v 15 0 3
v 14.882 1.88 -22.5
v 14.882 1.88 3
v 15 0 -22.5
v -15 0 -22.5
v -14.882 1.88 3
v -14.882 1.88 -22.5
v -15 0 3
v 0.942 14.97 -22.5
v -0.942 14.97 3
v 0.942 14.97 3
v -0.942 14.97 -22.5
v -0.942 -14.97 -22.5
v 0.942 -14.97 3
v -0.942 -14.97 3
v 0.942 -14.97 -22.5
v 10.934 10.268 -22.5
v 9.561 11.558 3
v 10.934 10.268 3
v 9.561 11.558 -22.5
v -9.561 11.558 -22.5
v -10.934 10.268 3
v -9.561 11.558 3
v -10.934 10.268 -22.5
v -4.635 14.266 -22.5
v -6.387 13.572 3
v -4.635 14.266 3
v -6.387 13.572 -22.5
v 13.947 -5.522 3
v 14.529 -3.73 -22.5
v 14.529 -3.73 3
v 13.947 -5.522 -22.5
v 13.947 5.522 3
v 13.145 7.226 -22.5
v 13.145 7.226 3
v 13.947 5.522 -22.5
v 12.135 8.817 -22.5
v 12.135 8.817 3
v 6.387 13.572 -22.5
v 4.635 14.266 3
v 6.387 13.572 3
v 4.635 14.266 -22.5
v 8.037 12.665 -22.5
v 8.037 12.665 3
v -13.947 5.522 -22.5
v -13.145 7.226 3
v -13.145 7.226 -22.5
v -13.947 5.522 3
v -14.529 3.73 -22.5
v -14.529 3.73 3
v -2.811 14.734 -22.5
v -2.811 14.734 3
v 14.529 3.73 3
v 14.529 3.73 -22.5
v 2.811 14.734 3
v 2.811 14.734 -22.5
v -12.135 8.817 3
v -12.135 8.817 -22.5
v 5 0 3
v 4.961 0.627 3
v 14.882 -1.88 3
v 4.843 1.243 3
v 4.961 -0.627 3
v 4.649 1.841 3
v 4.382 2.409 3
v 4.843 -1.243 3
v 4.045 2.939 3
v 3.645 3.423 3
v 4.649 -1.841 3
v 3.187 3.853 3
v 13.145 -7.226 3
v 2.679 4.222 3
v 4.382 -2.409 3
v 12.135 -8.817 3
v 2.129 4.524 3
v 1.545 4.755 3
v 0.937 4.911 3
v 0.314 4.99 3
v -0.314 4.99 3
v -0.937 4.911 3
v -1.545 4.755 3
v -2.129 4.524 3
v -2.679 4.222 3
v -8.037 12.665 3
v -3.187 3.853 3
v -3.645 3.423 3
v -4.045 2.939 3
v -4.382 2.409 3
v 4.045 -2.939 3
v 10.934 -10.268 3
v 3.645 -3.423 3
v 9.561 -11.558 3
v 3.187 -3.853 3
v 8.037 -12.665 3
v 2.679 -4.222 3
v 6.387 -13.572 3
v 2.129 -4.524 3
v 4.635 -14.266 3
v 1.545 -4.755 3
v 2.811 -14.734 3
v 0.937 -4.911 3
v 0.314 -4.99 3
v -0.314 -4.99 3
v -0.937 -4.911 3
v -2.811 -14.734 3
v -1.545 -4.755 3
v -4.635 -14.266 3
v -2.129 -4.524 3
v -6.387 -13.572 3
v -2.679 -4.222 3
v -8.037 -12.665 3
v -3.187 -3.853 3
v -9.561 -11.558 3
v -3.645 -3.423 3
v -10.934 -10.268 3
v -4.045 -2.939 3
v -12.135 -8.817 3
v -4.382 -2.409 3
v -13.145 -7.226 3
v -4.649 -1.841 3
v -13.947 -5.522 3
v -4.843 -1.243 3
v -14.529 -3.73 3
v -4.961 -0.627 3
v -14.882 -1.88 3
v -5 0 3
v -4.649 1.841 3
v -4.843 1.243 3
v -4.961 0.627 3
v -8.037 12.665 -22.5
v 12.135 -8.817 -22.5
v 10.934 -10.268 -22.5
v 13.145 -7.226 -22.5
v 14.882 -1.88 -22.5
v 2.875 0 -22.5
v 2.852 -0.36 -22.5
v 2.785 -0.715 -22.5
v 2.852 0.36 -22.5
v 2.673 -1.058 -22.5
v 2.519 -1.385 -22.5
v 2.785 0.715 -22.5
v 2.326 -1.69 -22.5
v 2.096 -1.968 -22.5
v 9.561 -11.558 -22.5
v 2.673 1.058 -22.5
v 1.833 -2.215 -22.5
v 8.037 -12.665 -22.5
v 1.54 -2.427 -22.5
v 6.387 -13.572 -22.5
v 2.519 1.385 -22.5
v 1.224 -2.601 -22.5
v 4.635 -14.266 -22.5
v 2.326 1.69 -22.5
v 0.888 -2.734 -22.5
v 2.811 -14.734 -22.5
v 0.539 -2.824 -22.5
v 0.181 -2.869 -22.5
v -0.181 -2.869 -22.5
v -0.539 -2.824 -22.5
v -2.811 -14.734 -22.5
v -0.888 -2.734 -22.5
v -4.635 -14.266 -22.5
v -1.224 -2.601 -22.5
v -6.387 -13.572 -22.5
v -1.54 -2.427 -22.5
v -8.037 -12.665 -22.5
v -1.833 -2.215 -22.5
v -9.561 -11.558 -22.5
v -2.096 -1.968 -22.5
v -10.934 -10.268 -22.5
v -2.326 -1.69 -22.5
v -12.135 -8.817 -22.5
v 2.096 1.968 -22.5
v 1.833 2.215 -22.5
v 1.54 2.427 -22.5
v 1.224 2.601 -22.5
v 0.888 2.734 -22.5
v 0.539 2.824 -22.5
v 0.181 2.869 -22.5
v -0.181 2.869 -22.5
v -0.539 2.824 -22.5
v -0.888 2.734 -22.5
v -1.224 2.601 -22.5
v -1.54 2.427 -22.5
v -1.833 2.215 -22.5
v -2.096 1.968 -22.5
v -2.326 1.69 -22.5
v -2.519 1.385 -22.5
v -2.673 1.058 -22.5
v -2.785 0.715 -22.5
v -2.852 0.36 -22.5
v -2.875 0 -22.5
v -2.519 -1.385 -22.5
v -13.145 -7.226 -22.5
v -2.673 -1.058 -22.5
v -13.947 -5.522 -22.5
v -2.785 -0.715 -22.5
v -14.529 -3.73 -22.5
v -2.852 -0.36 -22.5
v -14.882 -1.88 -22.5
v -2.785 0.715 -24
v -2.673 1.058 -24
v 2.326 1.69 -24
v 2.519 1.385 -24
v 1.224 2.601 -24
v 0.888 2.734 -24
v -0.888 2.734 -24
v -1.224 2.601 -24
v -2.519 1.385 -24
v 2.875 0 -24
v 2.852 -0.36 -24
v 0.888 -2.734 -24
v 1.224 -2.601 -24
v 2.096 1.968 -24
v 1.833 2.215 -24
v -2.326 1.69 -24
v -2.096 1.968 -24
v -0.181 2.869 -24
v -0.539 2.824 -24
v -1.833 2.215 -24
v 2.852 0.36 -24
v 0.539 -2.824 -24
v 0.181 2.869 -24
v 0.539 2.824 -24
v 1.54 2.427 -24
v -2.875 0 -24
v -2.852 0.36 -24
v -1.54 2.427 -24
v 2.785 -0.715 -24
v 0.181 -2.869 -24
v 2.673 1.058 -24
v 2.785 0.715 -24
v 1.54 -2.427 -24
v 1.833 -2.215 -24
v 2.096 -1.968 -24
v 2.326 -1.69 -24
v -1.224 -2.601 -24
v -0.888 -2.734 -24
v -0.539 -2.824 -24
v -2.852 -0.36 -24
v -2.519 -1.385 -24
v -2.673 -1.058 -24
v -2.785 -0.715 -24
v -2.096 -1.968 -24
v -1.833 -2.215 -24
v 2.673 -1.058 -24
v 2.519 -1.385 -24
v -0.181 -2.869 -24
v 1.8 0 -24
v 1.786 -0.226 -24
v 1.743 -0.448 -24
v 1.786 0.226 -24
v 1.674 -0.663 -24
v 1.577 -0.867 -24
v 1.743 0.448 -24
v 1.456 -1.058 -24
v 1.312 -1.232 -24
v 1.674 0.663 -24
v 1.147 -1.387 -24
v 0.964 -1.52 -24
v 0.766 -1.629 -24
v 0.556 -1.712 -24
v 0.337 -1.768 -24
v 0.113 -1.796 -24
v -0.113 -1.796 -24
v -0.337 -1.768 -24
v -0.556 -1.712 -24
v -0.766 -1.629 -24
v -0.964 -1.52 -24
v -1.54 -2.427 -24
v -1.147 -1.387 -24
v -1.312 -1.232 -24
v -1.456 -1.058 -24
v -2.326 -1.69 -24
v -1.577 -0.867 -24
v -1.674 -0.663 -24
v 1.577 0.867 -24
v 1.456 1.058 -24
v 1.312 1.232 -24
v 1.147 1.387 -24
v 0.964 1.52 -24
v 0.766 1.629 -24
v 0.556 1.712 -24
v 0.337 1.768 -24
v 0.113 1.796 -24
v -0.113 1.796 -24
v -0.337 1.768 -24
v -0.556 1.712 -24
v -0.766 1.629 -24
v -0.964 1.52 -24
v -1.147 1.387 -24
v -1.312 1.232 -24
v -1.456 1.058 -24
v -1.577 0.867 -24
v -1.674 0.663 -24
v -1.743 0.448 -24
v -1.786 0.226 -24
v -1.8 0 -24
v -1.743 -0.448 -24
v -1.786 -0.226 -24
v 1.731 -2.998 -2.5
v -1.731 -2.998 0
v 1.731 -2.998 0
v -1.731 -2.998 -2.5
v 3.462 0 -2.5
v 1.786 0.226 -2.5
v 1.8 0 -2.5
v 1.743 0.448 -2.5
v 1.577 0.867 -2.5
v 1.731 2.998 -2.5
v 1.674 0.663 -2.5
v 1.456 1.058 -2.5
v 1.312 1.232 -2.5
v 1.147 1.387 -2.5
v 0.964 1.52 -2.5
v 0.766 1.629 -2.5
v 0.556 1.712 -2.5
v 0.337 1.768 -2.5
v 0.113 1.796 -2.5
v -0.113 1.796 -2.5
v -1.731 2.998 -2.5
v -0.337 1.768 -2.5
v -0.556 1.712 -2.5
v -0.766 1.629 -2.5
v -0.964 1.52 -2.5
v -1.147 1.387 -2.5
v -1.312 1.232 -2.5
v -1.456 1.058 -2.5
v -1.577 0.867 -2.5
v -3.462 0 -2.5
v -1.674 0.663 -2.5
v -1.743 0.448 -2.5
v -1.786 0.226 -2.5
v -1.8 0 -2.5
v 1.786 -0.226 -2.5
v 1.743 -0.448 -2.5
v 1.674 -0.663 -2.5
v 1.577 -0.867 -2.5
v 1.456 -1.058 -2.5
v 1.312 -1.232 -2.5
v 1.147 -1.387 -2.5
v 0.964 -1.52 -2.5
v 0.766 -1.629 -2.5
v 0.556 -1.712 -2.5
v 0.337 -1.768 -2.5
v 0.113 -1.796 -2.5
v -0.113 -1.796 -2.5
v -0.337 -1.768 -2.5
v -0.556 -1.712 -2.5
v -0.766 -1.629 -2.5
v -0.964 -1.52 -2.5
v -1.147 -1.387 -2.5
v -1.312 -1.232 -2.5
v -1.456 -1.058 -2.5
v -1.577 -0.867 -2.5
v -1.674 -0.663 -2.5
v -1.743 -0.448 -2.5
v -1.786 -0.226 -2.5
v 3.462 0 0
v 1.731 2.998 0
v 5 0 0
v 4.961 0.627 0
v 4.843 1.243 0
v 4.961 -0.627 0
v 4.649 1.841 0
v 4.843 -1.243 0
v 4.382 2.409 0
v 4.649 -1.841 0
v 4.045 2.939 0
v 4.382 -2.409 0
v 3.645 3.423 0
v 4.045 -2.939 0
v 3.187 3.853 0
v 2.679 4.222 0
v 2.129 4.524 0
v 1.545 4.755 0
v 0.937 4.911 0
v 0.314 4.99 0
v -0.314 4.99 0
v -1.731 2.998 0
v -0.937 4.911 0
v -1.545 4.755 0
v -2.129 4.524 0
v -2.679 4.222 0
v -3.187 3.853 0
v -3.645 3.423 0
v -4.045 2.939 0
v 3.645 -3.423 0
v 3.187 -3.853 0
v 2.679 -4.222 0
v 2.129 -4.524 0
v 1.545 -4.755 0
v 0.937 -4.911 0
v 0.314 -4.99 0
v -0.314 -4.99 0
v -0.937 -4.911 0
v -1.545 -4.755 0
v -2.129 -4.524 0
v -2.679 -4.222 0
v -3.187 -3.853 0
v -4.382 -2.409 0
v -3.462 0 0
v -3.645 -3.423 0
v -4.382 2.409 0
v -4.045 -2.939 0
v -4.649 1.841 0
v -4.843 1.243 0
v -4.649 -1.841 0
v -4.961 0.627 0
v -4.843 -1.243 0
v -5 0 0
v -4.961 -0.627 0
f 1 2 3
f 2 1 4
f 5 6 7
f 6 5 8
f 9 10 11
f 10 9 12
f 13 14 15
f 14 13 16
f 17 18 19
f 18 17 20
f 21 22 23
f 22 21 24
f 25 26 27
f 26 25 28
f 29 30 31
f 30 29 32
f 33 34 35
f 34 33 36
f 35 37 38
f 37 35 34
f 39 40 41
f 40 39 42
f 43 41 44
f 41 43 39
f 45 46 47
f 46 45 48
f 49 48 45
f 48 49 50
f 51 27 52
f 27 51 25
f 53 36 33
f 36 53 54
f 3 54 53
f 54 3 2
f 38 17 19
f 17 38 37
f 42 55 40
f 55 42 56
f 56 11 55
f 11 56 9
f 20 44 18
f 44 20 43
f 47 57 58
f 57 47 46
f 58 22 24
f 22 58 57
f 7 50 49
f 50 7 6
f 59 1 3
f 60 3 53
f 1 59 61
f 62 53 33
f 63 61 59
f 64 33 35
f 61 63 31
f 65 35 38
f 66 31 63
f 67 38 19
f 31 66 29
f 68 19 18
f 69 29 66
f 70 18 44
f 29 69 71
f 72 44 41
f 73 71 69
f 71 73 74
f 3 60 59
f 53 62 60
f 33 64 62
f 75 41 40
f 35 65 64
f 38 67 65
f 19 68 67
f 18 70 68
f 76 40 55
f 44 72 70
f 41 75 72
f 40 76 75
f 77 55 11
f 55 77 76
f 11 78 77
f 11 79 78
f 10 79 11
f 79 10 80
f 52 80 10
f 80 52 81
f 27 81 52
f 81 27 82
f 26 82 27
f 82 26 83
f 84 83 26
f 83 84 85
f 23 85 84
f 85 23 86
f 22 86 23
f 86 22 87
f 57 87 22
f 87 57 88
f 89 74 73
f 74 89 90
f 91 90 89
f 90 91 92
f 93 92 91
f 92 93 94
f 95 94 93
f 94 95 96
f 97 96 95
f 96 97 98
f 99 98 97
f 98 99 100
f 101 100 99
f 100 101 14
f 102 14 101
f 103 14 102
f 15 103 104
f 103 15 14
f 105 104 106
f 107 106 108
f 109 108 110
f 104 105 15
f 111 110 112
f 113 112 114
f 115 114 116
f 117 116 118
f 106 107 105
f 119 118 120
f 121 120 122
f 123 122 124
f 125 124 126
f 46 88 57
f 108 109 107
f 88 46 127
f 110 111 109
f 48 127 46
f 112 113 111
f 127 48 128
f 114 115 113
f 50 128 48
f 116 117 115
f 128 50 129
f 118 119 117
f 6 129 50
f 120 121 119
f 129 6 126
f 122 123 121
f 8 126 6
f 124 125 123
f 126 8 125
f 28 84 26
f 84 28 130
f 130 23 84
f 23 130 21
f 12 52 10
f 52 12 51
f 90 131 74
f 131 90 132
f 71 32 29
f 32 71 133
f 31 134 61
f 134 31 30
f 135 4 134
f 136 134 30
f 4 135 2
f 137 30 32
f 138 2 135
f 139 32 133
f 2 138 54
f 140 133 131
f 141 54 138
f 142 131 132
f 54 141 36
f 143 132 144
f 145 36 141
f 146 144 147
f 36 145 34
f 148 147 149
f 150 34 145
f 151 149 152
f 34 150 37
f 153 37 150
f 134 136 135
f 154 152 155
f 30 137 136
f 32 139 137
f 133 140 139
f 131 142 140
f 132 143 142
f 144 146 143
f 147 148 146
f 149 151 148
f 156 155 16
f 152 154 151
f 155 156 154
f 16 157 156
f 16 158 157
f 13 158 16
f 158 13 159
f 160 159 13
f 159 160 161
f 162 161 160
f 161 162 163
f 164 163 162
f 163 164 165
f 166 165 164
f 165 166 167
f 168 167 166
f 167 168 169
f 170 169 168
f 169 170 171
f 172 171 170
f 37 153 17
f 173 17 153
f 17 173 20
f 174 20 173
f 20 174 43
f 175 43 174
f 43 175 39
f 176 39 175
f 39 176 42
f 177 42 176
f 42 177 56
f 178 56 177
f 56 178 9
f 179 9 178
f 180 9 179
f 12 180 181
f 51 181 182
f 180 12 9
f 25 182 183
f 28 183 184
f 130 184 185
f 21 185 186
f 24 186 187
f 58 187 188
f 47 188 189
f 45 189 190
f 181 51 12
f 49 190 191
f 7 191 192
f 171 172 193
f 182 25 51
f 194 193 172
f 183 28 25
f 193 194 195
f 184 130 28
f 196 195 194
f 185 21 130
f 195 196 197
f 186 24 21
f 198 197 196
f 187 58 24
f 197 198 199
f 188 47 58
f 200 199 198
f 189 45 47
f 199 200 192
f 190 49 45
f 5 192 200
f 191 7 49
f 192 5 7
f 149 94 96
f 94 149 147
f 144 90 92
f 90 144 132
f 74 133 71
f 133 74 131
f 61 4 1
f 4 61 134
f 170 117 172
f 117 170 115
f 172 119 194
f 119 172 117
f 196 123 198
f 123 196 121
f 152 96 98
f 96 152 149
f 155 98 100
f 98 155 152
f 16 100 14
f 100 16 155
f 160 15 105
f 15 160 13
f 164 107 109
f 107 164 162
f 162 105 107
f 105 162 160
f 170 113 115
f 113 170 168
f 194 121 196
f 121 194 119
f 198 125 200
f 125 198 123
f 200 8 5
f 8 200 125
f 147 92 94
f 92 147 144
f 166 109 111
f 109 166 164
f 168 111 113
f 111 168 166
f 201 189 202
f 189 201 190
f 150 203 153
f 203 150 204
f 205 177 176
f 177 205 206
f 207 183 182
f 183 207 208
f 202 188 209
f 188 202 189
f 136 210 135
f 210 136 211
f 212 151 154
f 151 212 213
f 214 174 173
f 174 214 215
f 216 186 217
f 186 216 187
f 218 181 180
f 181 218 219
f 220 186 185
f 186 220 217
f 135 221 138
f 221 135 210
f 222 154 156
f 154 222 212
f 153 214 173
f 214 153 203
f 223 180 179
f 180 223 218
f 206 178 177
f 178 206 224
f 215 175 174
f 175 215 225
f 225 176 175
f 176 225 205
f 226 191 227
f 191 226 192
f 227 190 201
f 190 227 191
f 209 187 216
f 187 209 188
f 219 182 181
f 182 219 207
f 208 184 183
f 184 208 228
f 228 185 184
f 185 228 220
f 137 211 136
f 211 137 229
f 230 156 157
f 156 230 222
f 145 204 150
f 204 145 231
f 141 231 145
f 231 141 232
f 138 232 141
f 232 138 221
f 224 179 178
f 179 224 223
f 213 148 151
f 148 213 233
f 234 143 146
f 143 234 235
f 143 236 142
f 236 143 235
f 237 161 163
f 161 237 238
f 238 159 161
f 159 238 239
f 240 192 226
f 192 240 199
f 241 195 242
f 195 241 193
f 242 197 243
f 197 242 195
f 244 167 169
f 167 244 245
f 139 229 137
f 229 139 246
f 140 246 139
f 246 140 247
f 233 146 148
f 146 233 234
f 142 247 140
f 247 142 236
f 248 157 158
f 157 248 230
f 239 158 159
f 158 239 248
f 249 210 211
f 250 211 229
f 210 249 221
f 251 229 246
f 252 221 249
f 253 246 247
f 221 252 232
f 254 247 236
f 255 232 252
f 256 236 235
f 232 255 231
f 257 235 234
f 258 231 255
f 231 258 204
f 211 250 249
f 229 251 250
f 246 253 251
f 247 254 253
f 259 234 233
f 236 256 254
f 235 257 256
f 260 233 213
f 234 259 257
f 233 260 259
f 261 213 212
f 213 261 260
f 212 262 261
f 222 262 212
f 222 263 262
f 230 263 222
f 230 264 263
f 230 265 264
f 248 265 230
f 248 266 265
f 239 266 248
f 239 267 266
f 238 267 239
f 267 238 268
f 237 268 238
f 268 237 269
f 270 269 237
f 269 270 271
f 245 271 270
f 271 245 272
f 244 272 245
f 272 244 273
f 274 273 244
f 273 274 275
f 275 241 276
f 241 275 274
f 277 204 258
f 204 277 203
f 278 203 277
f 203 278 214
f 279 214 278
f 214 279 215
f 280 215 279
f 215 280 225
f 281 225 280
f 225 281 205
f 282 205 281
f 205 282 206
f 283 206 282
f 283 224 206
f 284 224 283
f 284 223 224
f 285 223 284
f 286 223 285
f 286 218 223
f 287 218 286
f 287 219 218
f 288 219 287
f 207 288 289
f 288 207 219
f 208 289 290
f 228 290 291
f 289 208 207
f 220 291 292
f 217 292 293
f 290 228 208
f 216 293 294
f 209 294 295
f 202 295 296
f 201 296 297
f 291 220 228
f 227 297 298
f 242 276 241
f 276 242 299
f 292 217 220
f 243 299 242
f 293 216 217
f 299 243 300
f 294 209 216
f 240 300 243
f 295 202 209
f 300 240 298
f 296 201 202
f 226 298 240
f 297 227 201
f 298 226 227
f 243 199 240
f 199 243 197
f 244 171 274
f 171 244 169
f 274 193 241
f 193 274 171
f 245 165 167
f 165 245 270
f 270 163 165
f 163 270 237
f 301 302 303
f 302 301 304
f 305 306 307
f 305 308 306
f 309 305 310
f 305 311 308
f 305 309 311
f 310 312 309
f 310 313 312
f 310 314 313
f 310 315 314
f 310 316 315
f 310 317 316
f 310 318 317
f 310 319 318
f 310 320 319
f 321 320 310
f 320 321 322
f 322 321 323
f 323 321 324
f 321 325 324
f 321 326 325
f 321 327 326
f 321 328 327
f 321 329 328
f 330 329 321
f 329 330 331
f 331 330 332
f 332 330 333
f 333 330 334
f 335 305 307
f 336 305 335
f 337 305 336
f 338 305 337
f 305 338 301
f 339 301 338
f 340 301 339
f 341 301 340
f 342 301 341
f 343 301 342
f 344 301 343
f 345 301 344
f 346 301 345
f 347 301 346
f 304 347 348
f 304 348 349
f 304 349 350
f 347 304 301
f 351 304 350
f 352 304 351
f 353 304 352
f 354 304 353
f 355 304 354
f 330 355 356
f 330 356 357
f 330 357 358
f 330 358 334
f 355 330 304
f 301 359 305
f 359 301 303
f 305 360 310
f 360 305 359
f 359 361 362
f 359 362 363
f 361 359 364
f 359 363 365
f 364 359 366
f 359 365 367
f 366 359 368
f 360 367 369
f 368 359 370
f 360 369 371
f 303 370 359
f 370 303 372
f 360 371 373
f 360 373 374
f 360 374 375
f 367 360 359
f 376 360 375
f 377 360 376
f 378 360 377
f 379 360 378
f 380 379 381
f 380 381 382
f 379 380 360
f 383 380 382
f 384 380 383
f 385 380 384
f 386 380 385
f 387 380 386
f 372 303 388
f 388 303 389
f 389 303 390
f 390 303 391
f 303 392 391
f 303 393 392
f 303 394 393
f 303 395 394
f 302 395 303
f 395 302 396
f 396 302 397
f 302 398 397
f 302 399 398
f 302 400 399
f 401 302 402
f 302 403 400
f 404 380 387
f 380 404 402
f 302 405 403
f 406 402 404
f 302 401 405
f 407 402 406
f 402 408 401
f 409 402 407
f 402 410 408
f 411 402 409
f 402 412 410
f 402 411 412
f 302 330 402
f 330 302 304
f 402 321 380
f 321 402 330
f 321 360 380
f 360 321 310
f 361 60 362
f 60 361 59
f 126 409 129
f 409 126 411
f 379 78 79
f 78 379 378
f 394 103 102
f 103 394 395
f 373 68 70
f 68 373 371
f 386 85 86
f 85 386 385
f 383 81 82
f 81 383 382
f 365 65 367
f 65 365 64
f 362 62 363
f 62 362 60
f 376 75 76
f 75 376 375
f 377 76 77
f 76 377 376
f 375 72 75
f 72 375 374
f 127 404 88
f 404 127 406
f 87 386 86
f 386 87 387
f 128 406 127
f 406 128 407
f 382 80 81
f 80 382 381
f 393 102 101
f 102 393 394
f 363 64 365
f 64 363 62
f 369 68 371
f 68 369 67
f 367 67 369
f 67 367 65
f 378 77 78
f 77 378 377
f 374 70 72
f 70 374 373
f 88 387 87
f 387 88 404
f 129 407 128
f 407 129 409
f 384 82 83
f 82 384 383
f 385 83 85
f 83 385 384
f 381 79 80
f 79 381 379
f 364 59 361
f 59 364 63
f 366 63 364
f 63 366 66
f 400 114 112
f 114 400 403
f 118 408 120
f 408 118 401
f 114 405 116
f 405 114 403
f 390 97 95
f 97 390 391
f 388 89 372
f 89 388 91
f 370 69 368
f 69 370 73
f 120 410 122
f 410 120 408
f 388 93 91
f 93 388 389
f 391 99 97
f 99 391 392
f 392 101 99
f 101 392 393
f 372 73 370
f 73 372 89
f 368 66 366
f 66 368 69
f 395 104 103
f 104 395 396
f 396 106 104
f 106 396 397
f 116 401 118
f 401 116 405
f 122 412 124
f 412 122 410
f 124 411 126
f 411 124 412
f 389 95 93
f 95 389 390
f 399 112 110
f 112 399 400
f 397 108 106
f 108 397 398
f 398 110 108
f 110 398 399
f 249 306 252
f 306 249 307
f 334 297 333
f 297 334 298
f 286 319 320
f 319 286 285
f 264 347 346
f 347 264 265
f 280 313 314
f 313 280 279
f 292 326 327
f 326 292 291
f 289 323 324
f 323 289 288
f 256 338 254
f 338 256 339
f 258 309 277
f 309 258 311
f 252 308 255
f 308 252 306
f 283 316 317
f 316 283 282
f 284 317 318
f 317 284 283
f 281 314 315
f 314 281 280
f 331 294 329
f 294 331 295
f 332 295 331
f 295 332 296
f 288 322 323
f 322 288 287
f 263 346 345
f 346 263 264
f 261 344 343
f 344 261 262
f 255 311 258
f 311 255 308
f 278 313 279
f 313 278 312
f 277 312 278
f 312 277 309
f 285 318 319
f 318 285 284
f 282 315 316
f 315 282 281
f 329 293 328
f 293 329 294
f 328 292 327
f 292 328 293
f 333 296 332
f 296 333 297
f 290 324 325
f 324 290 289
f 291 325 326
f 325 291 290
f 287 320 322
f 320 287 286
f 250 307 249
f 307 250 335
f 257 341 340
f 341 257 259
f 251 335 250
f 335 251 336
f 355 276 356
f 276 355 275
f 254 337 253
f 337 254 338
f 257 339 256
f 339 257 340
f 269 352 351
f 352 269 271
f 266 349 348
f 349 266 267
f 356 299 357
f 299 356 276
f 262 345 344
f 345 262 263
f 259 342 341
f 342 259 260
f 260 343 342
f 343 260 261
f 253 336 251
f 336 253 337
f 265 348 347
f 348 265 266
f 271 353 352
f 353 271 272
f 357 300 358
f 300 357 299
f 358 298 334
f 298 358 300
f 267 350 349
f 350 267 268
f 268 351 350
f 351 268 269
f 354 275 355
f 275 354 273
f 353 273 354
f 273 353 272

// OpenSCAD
$fn = 50;

difference() {
	union() {
		translate(v = [0, 0, -22.5]) {
			cylinder(h = 25.5, r = 15.0);
		}
		#translate(v = [0, 0, -24.0]) {
			cylinder(h = 24, r = 2.875);
		}
	}
	union() {
		translate(v = [0, 0, 0]) {
			rotate(a = [0, 0, 0]) {
				difference() {
					union() {
						translate(v = [0, 0, -2.5]) {
							linear_extrude(height = 2.5) {
								polygon(points = [[3.4619999999999997, 0.0], [1.7310000000000003, 2.9981799479017264], [-1.7309999999999992, 2.9981799479017264], [-3.4619999999999997, 4.2397272186481365e-16], [-1.7310000000000014, -2.998179947901726], [1.7309999999999977, -2.9981799479017277]]);
							}
						}
					}
					union();
				}
			}
		}
		#cylinder(h = 3, r = 5.0);
		#translate(v = [0, 0, -100.0]) {
			cylinder(h = 200, r = 1.8);
		}
	}
}
